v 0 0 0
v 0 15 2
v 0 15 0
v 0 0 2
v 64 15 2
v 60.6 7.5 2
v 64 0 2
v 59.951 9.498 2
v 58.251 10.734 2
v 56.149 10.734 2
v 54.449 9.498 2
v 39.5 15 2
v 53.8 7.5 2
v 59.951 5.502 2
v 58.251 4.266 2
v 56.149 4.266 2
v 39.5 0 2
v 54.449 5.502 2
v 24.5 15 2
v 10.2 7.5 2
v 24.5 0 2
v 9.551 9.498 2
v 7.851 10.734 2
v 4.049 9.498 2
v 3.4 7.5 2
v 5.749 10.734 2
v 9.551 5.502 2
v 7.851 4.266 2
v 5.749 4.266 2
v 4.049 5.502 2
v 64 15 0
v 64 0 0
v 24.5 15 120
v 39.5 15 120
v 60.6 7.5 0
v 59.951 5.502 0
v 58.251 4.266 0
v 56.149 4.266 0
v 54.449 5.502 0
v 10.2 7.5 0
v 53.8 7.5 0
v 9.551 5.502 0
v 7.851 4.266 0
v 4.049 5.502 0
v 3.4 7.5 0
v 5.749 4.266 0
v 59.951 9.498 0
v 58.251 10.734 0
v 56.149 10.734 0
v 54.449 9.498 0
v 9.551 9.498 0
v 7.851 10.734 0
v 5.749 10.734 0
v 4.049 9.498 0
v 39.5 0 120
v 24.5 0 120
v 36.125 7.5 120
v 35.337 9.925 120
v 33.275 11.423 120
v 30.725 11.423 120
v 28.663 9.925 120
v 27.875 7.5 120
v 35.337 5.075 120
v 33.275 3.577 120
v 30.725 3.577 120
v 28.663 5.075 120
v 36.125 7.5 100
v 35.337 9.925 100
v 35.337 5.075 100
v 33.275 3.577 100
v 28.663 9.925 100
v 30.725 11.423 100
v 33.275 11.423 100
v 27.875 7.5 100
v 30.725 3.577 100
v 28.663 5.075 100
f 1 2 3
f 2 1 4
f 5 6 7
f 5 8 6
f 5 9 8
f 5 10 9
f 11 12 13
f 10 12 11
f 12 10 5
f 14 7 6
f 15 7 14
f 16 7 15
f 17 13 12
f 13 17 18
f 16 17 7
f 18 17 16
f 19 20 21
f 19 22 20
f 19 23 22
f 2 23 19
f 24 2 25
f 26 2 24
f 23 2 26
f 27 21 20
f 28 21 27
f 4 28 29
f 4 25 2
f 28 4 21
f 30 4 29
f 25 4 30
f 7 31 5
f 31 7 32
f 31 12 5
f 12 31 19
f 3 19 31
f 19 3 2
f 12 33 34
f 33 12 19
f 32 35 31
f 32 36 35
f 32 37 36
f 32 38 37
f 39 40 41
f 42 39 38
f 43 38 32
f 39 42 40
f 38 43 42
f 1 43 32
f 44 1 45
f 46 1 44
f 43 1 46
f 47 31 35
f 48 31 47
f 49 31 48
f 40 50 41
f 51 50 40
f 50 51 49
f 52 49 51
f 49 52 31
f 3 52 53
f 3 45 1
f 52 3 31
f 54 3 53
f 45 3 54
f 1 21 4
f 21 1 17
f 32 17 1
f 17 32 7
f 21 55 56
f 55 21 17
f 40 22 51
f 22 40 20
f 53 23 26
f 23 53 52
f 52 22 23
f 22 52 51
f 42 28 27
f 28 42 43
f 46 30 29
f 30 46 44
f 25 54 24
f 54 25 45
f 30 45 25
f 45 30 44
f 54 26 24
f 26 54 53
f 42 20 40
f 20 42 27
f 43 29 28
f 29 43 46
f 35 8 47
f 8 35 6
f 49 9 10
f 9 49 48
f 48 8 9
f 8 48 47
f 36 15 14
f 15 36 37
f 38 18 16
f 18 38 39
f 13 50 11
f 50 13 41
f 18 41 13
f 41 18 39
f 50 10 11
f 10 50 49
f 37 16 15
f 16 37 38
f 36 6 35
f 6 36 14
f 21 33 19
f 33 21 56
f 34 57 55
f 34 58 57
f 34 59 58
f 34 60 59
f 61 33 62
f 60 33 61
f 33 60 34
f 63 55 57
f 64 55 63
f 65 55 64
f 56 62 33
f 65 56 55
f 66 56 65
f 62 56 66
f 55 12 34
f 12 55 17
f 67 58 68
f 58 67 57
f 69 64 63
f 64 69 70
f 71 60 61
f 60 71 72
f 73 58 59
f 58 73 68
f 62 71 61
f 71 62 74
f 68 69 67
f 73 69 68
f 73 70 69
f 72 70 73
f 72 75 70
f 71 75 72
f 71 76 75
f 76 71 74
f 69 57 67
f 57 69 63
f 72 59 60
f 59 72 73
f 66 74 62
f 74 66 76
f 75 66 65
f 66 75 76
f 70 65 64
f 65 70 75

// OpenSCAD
res=10;

d=9.5;
base_x=1;
base_y=1;
pilar_x=15;
pilar_y=15;
pilar_z=160;
base_fixa_x=2*6.8+2*25.2;
base_fixa_y=15;
base_fixa_z=2;

entre_imas=90;
enc_cil_ima=9.9/2;
fixa_ima=1;
fixa_ima_z=1;

difference(){
    cube([base_fixa_x,base_fixa_y,base_fixa_z]);
    #translate([6.8,base_fixa_y/2,0])cylinder(2,6.8/2,6.8/2,$fn=res);
    #translate([6.8+2*25.2,base_fixa_y/2,0])cylinder(2,6.8/2,6.8/2,$fn=res);
}
difference(){
    translate([(base_fixa_x-pilar_x)/2,(base_fixa_y-pilar_y)/2,0])cube([pilar_x,pilar_x,pilar_z-40]);
    #translate([(base_fixa_x-pilar_x)/2-(entre_imas-pilar_x)/2,0,pilar_z])
    #translate([entre_imas/2,15/2,-20-40])
    #cylinder(20,4+0.125,4+0.125,$fn=res);
}
/*translate([(base_fixa_x-pilar_x)/2-(entre_imas-pilar_x)/2,0,pilar_z]){
    difference(){
        translate([0,0,0]){
            translate([0,15/2,15])rotate([0,-90,0])cylinder(10,15/2,15/2,$fn=res);
            translate([entre_imas+10,15/2,15])rotate([0,-90,0])cylinder(10,15/2,15/2,$fn=res);
            translate([-10,0,-40])cube([10,15,15+40]);
            translate([entre_imas,0,-40])cube([10,15,15+40]);
            translate([-10,0,-40])cube([20+entre_imas,15,2]);
        }
        #translate([-2,15/2,15])rotate([0,-90,0])cylinder(10,9.9/2,9.9/2,$fn=res);
        #translate([entre_imas+10+2,15/2,15])rotate([0,-90,0])cylinder(10,9.9/2,9.9/2,$fn=res);
        #translate([entre_imas/2,15/2,-40])cylinder(2,4+0.125,4+0.125,$fn=res);
    }
}

translate([(base_fixa_x-pilar_x)/2-(entre_imas-pilar_x)/2,0,pilar_z])
translate([entre_imas/2,15/2,20])
cylinder(10,4,4,$fn=res);
translate([(base_fixa_x-pilar_x)/2-(entre_imas-pilar_x)/2,0,pilar_z])
translate([entre_imas/2,15/2,20+10])
translate([-15/2,-15/2,0])
cube([15,15,3]);*/
